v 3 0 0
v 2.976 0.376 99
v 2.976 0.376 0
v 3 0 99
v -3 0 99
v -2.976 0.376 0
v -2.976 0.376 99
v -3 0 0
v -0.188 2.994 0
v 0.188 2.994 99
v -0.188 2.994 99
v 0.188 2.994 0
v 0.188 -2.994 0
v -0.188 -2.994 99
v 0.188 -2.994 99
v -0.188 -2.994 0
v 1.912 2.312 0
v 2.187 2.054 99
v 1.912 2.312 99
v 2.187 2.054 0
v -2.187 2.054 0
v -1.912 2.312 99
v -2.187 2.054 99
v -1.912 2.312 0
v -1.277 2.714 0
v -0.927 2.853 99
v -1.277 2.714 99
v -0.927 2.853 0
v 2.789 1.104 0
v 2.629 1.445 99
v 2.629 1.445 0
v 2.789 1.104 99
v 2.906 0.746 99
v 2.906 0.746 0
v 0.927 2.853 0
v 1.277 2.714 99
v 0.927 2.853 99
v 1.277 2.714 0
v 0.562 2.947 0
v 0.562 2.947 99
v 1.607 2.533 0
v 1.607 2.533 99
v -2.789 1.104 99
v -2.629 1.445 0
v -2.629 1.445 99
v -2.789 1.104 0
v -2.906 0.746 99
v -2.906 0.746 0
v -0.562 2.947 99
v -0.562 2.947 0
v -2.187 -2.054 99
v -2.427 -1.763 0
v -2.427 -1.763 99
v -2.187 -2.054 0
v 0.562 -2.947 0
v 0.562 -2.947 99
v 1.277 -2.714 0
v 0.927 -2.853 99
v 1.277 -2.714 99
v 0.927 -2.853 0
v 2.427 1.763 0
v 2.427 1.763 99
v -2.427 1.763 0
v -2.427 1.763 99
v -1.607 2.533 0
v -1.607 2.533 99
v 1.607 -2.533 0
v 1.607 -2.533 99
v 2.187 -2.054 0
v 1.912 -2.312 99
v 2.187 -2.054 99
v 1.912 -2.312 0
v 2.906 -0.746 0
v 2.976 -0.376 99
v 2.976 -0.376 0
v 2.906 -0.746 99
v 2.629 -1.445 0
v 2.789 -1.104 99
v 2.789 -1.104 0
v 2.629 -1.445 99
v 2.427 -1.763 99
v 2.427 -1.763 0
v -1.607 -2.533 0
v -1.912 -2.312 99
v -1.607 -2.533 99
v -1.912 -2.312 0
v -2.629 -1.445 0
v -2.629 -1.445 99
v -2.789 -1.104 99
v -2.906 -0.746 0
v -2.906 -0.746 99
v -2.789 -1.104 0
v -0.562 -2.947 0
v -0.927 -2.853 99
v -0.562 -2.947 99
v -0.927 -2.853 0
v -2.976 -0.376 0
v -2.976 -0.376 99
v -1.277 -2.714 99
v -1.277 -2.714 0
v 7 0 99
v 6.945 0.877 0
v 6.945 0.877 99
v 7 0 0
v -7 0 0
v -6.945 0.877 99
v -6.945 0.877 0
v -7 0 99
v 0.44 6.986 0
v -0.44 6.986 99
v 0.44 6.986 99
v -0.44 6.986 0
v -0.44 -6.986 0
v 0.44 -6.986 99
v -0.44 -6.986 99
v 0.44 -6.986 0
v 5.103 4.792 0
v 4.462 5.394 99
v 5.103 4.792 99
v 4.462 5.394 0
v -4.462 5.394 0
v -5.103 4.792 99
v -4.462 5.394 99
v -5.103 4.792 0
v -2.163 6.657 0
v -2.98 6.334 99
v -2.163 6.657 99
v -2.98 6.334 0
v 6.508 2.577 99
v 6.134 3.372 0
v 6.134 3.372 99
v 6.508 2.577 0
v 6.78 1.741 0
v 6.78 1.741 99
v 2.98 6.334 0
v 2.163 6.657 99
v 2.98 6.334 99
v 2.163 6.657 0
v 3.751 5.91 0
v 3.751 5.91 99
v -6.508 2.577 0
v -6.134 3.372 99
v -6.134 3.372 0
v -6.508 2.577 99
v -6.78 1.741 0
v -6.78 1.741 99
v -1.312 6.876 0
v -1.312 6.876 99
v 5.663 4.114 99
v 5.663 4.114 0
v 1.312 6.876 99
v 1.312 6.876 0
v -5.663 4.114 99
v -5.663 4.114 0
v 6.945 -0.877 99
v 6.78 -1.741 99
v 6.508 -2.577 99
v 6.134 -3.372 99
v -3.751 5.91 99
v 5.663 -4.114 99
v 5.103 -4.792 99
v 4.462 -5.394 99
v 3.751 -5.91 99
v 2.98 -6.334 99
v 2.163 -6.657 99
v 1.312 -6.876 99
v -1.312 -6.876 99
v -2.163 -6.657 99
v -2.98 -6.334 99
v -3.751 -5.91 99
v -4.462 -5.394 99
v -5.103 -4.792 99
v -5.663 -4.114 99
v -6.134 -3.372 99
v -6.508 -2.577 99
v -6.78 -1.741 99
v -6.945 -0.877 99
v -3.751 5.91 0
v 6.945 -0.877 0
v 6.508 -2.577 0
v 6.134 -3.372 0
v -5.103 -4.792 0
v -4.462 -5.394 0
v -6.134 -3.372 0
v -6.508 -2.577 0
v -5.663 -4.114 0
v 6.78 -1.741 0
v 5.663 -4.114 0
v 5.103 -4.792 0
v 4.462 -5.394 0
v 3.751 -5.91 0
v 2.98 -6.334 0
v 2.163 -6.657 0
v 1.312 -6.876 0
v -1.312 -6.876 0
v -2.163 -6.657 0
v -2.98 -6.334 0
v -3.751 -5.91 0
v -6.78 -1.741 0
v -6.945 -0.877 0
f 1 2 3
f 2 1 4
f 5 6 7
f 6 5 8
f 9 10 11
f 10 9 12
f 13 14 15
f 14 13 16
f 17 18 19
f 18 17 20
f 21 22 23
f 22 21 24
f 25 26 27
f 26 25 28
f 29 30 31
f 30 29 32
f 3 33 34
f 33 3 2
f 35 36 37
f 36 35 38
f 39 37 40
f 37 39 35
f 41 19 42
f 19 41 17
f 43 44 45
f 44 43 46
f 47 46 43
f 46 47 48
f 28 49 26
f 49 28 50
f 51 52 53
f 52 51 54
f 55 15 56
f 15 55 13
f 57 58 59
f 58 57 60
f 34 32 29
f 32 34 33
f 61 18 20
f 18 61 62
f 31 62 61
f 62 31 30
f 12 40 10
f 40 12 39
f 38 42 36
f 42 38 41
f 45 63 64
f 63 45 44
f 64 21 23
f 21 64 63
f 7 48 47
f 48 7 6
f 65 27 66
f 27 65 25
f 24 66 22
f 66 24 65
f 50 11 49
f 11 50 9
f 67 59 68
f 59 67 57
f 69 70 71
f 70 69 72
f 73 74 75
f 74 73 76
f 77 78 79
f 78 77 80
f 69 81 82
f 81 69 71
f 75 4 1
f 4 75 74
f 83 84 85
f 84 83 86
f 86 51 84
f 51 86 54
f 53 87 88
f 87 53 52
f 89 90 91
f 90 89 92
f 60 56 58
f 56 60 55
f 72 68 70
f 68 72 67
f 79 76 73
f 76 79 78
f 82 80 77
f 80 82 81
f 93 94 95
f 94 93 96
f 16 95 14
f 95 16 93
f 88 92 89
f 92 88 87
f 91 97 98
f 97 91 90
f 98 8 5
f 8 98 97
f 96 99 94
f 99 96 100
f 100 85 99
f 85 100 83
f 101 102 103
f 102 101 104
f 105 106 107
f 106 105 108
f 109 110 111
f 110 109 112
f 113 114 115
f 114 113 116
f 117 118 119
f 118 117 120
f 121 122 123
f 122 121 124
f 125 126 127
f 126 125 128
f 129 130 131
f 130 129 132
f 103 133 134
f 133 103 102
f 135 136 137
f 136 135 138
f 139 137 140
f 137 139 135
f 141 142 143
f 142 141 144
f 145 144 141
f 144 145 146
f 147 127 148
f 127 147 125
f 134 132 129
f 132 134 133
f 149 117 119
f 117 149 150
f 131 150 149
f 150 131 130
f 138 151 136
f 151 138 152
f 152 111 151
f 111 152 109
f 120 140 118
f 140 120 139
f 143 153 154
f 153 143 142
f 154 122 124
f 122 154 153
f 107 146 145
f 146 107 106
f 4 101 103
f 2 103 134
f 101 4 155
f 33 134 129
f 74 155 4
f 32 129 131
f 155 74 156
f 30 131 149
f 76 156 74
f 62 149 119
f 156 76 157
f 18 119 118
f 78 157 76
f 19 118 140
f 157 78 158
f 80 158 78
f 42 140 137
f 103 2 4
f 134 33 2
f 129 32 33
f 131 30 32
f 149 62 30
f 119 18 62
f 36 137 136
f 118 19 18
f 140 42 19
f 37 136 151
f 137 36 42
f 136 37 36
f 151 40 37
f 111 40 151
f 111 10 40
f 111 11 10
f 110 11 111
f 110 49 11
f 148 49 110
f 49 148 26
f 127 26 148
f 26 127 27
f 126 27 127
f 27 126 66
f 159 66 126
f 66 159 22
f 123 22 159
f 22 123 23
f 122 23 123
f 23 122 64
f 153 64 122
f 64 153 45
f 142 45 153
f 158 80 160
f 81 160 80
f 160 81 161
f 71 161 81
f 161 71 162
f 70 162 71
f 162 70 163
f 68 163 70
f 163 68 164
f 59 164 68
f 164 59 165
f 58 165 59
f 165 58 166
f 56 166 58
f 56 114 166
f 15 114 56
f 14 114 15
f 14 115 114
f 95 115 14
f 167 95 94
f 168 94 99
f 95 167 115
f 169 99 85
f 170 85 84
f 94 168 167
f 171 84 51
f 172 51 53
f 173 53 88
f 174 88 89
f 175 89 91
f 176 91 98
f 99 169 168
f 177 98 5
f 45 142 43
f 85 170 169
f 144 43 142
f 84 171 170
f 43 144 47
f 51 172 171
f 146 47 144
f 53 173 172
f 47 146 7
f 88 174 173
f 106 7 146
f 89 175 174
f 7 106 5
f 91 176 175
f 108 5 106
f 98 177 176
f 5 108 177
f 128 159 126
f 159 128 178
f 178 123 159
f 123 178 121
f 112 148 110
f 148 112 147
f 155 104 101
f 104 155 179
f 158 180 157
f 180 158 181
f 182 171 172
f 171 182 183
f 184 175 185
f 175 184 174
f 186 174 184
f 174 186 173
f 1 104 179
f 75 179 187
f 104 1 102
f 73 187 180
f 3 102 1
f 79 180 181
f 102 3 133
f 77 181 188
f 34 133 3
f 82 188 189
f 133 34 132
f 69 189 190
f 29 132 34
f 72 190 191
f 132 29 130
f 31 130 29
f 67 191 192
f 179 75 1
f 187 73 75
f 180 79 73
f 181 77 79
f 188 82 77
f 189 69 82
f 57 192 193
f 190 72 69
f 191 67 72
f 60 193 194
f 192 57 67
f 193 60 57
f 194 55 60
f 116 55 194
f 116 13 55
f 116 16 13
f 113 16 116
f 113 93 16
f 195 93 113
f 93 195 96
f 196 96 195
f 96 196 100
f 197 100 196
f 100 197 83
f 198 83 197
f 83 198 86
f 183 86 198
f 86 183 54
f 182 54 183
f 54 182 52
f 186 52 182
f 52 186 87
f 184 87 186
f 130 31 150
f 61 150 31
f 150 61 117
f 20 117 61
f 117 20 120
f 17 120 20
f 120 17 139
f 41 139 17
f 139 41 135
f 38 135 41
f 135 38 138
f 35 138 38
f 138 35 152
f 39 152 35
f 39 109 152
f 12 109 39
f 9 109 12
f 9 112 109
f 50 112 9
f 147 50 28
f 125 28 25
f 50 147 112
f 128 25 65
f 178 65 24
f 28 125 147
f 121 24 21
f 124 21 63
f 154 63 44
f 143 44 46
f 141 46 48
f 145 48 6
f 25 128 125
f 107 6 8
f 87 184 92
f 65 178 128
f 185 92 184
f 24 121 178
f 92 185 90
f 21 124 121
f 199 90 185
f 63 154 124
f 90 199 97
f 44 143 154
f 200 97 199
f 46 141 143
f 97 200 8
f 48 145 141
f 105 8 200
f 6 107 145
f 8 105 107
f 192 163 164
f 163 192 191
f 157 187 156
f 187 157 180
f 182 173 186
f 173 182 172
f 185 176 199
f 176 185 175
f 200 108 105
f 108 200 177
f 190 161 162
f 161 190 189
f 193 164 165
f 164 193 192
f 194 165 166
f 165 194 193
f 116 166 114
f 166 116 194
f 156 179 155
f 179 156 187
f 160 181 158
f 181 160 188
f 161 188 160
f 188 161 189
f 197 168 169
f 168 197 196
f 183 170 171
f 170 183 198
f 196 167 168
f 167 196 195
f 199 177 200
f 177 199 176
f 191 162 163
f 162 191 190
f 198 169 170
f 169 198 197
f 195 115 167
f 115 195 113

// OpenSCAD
$fn = 50;


difference() {
	union() {
		cylinder(h = 99, r = 7.0000000000);
	}
	union() {
		translate(v = [0.0000000000, 0.0000000000, -100.0000000000]) {
			cylinder(h = 200, r = 3.0000000000);
		}
		cylinder(h = 99, r = 1.5000000000);
		cylinder(h = 99, r = 1.5000000000);
		cylinder(h = 99, r = 1.5000000000);
	}
}
